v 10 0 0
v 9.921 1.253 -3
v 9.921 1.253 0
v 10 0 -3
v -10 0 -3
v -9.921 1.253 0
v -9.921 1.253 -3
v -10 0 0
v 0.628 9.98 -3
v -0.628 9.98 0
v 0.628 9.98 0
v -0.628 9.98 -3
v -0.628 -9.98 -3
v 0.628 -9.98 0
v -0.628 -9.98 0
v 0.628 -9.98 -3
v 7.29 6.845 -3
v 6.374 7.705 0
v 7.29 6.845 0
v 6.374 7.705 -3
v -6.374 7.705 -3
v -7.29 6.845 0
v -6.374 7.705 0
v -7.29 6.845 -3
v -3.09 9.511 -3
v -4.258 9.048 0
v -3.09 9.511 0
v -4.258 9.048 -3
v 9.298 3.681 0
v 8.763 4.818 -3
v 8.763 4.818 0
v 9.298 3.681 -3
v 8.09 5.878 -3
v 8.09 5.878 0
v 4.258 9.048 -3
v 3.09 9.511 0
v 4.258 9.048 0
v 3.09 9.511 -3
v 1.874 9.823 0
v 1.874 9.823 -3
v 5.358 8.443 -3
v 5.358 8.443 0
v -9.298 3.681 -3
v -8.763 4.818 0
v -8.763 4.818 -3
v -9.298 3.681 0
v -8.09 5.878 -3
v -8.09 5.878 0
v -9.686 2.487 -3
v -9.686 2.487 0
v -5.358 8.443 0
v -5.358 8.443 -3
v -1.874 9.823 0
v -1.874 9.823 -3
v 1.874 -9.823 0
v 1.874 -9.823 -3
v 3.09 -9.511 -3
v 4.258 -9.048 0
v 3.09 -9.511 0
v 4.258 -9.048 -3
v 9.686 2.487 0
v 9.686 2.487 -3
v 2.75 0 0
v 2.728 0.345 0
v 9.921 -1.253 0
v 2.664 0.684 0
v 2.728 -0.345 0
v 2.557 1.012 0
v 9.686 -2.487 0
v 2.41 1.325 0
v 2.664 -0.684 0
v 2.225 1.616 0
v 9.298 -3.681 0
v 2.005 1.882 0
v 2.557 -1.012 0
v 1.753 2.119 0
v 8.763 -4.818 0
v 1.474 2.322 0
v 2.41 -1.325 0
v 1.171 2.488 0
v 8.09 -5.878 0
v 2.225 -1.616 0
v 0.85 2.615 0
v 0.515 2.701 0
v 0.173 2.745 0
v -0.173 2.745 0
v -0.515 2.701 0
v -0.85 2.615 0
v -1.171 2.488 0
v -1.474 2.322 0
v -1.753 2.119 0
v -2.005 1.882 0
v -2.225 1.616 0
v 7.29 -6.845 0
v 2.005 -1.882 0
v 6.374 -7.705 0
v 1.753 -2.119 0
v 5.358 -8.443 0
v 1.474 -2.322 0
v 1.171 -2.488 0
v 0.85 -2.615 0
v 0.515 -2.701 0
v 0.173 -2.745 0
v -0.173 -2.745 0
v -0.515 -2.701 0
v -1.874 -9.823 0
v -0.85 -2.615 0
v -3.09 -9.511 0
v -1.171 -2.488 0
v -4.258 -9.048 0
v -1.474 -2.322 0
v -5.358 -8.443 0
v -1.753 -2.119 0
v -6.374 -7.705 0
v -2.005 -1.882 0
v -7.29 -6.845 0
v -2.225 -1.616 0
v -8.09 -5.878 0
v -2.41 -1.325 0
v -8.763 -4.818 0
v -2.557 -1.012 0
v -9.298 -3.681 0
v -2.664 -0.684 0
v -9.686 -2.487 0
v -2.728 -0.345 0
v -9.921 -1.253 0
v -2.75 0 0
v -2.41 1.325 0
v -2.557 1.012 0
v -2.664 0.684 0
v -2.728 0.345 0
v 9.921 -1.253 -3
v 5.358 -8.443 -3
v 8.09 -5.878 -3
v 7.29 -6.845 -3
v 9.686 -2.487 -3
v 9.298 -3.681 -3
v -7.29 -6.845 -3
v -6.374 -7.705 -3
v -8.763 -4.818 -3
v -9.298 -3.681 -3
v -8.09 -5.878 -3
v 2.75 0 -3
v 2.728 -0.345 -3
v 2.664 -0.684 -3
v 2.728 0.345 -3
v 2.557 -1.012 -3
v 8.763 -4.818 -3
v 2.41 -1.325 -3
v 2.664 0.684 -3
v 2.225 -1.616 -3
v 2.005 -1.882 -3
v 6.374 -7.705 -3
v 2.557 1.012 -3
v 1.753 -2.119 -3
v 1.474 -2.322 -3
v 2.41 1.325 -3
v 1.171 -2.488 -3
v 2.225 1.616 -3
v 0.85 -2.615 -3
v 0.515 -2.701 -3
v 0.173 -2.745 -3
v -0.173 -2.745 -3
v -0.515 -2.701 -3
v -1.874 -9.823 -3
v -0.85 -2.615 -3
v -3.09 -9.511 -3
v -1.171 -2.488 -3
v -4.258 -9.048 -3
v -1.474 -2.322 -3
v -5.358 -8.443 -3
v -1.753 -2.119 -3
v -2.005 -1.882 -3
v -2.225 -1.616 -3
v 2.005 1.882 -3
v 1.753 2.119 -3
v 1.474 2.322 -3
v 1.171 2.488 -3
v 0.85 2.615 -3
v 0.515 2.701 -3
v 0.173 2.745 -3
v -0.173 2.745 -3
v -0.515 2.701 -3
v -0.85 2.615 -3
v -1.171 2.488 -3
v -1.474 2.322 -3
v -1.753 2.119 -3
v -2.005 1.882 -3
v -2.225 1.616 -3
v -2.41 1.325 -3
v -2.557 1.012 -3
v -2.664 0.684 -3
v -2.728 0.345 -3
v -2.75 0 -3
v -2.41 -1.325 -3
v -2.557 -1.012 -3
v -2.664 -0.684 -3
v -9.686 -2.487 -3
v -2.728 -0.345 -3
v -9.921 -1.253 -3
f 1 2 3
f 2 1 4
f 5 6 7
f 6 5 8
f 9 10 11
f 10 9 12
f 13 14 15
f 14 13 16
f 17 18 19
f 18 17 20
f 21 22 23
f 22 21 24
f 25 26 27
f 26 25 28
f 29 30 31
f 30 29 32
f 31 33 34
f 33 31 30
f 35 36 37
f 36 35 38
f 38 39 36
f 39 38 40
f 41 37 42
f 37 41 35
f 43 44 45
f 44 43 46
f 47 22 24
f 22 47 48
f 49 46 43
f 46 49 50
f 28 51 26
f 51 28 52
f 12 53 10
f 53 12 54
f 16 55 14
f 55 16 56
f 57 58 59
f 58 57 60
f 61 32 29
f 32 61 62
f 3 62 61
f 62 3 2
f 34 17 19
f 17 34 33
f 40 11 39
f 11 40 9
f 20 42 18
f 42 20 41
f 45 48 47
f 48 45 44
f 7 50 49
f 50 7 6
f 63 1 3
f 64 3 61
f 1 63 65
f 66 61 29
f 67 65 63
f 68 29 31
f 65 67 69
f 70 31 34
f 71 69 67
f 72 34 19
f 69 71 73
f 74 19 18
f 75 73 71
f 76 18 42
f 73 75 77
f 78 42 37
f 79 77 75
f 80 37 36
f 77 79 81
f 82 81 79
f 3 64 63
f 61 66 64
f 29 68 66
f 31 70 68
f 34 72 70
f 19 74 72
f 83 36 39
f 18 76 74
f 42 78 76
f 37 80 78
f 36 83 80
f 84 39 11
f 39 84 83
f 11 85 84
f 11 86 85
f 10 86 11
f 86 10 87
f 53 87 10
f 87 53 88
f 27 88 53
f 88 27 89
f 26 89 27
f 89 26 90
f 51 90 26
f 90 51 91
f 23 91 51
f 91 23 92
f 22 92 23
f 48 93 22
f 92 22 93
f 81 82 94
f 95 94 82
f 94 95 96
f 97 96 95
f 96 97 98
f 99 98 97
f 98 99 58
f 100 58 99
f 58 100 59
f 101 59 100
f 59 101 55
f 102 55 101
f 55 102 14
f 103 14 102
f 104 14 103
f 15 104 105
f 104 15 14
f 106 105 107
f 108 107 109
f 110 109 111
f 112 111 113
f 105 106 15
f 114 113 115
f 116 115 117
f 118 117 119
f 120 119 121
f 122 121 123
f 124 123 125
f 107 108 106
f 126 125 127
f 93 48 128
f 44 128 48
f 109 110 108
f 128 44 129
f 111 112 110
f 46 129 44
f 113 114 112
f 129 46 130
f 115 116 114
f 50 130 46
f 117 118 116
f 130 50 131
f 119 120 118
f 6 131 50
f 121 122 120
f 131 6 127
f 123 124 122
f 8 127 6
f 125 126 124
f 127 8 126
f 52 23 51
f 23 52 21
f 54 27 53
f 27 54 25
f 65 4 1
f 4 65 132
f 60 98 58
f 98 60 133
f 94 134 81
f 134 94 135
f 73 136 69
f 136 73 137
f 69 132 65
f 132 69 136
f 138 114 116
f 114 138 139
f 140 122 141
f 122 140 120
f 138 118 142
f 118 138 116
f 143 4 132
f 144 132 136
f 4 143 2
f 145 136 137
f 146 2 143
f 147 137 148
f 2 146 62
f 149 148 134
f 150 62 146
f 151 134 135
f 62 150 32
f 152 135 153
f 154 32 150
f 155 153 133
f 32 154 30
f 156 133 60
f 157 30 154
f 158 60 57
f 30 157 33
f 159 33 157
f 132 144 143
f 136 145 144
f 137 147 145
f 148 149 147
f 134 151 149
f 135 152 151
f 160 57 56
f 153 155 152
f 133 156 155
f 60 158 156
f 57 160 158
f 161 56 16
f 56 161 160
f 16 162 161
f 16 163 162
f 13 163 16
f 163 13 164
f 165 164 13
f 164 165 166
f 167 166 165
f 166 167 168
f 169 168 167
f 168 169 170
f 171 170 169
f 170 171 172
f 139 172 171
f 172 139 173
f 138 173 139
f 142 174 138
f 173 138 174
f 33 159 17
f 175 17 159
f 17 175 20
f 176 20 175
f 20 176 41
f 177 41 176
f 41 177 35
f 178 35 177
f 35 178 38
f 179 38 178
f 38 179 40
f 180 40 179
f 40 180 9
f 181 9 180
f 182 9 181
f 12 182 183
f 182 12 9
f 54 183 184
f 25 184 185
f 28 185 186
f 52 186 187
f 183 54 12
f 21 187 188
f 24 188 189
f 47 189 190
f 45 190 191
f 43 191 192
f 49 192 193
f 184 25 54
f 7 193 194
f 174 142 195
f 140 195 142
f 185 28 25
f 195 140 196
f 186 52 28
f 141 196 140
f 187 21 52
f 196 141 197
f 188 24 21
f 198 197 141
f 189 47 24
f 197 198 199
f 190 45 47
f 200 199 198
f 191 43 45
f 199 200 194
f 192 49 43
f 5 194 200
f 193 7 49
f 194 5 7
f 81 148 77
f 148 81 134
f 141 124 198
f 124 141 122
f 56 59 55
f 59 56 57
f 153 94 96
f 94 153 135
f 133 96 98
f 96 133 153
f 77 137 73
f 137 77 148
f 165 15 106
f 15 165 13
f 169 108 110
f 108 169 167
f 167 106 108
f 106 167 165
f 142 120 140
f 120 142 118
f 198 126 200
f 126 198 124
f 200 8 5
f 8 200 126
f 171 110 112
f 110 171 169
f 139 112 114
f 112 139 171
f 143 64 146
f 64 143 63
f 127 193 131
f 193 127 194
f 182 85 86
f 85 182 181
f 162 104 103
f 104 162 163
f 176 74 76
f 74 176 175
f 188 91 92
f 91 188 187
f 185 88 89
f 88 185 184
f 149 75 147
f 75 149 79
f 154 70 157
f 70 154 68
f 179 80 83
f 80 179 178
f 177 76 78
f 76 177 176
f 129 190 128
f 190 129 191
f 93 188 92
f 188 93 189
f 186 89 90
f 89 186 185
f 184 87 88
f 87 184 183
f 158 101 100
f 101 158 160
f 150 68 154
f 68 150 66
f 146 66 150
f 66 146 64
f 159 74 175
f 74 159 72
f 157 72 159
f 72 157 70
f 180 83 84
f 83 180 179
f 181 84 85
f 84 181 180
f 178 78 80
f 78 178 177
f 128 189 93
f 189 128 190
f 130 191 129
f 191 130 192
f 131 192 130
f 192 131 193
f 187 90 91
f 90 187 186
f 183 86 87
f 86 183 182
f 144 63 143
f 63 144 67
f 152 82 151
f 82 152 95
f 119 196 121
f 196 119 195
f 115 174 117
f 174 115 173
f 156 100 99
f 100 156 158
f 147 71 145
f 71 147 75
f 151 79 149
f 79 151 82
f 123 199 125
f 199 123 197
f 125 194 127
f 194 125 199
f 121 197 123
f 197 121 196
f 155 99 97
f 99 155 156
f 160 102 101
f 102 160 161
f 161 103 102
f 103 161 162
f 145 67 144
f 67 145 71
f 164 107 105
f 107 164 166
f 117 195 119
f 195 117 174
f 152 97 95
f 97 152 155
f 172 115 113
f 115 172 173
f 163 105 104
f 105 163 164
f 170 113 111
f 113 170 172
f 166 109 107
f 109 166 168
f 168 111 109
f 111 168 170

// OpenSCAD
$fn = 50;


difference() {
	union() {
		translate(v = [0, 0, -3.0000000000]) {
			cylinder(h = 3, r = 10.0000000000);
		}
		cylinder(h = 0, r = 16.0000000000);
	}
	union() {
		#translate(v = [0, 0, -3]) {
			cylinder(h = 3, r = 2.7500000000);
		}
	}
}
